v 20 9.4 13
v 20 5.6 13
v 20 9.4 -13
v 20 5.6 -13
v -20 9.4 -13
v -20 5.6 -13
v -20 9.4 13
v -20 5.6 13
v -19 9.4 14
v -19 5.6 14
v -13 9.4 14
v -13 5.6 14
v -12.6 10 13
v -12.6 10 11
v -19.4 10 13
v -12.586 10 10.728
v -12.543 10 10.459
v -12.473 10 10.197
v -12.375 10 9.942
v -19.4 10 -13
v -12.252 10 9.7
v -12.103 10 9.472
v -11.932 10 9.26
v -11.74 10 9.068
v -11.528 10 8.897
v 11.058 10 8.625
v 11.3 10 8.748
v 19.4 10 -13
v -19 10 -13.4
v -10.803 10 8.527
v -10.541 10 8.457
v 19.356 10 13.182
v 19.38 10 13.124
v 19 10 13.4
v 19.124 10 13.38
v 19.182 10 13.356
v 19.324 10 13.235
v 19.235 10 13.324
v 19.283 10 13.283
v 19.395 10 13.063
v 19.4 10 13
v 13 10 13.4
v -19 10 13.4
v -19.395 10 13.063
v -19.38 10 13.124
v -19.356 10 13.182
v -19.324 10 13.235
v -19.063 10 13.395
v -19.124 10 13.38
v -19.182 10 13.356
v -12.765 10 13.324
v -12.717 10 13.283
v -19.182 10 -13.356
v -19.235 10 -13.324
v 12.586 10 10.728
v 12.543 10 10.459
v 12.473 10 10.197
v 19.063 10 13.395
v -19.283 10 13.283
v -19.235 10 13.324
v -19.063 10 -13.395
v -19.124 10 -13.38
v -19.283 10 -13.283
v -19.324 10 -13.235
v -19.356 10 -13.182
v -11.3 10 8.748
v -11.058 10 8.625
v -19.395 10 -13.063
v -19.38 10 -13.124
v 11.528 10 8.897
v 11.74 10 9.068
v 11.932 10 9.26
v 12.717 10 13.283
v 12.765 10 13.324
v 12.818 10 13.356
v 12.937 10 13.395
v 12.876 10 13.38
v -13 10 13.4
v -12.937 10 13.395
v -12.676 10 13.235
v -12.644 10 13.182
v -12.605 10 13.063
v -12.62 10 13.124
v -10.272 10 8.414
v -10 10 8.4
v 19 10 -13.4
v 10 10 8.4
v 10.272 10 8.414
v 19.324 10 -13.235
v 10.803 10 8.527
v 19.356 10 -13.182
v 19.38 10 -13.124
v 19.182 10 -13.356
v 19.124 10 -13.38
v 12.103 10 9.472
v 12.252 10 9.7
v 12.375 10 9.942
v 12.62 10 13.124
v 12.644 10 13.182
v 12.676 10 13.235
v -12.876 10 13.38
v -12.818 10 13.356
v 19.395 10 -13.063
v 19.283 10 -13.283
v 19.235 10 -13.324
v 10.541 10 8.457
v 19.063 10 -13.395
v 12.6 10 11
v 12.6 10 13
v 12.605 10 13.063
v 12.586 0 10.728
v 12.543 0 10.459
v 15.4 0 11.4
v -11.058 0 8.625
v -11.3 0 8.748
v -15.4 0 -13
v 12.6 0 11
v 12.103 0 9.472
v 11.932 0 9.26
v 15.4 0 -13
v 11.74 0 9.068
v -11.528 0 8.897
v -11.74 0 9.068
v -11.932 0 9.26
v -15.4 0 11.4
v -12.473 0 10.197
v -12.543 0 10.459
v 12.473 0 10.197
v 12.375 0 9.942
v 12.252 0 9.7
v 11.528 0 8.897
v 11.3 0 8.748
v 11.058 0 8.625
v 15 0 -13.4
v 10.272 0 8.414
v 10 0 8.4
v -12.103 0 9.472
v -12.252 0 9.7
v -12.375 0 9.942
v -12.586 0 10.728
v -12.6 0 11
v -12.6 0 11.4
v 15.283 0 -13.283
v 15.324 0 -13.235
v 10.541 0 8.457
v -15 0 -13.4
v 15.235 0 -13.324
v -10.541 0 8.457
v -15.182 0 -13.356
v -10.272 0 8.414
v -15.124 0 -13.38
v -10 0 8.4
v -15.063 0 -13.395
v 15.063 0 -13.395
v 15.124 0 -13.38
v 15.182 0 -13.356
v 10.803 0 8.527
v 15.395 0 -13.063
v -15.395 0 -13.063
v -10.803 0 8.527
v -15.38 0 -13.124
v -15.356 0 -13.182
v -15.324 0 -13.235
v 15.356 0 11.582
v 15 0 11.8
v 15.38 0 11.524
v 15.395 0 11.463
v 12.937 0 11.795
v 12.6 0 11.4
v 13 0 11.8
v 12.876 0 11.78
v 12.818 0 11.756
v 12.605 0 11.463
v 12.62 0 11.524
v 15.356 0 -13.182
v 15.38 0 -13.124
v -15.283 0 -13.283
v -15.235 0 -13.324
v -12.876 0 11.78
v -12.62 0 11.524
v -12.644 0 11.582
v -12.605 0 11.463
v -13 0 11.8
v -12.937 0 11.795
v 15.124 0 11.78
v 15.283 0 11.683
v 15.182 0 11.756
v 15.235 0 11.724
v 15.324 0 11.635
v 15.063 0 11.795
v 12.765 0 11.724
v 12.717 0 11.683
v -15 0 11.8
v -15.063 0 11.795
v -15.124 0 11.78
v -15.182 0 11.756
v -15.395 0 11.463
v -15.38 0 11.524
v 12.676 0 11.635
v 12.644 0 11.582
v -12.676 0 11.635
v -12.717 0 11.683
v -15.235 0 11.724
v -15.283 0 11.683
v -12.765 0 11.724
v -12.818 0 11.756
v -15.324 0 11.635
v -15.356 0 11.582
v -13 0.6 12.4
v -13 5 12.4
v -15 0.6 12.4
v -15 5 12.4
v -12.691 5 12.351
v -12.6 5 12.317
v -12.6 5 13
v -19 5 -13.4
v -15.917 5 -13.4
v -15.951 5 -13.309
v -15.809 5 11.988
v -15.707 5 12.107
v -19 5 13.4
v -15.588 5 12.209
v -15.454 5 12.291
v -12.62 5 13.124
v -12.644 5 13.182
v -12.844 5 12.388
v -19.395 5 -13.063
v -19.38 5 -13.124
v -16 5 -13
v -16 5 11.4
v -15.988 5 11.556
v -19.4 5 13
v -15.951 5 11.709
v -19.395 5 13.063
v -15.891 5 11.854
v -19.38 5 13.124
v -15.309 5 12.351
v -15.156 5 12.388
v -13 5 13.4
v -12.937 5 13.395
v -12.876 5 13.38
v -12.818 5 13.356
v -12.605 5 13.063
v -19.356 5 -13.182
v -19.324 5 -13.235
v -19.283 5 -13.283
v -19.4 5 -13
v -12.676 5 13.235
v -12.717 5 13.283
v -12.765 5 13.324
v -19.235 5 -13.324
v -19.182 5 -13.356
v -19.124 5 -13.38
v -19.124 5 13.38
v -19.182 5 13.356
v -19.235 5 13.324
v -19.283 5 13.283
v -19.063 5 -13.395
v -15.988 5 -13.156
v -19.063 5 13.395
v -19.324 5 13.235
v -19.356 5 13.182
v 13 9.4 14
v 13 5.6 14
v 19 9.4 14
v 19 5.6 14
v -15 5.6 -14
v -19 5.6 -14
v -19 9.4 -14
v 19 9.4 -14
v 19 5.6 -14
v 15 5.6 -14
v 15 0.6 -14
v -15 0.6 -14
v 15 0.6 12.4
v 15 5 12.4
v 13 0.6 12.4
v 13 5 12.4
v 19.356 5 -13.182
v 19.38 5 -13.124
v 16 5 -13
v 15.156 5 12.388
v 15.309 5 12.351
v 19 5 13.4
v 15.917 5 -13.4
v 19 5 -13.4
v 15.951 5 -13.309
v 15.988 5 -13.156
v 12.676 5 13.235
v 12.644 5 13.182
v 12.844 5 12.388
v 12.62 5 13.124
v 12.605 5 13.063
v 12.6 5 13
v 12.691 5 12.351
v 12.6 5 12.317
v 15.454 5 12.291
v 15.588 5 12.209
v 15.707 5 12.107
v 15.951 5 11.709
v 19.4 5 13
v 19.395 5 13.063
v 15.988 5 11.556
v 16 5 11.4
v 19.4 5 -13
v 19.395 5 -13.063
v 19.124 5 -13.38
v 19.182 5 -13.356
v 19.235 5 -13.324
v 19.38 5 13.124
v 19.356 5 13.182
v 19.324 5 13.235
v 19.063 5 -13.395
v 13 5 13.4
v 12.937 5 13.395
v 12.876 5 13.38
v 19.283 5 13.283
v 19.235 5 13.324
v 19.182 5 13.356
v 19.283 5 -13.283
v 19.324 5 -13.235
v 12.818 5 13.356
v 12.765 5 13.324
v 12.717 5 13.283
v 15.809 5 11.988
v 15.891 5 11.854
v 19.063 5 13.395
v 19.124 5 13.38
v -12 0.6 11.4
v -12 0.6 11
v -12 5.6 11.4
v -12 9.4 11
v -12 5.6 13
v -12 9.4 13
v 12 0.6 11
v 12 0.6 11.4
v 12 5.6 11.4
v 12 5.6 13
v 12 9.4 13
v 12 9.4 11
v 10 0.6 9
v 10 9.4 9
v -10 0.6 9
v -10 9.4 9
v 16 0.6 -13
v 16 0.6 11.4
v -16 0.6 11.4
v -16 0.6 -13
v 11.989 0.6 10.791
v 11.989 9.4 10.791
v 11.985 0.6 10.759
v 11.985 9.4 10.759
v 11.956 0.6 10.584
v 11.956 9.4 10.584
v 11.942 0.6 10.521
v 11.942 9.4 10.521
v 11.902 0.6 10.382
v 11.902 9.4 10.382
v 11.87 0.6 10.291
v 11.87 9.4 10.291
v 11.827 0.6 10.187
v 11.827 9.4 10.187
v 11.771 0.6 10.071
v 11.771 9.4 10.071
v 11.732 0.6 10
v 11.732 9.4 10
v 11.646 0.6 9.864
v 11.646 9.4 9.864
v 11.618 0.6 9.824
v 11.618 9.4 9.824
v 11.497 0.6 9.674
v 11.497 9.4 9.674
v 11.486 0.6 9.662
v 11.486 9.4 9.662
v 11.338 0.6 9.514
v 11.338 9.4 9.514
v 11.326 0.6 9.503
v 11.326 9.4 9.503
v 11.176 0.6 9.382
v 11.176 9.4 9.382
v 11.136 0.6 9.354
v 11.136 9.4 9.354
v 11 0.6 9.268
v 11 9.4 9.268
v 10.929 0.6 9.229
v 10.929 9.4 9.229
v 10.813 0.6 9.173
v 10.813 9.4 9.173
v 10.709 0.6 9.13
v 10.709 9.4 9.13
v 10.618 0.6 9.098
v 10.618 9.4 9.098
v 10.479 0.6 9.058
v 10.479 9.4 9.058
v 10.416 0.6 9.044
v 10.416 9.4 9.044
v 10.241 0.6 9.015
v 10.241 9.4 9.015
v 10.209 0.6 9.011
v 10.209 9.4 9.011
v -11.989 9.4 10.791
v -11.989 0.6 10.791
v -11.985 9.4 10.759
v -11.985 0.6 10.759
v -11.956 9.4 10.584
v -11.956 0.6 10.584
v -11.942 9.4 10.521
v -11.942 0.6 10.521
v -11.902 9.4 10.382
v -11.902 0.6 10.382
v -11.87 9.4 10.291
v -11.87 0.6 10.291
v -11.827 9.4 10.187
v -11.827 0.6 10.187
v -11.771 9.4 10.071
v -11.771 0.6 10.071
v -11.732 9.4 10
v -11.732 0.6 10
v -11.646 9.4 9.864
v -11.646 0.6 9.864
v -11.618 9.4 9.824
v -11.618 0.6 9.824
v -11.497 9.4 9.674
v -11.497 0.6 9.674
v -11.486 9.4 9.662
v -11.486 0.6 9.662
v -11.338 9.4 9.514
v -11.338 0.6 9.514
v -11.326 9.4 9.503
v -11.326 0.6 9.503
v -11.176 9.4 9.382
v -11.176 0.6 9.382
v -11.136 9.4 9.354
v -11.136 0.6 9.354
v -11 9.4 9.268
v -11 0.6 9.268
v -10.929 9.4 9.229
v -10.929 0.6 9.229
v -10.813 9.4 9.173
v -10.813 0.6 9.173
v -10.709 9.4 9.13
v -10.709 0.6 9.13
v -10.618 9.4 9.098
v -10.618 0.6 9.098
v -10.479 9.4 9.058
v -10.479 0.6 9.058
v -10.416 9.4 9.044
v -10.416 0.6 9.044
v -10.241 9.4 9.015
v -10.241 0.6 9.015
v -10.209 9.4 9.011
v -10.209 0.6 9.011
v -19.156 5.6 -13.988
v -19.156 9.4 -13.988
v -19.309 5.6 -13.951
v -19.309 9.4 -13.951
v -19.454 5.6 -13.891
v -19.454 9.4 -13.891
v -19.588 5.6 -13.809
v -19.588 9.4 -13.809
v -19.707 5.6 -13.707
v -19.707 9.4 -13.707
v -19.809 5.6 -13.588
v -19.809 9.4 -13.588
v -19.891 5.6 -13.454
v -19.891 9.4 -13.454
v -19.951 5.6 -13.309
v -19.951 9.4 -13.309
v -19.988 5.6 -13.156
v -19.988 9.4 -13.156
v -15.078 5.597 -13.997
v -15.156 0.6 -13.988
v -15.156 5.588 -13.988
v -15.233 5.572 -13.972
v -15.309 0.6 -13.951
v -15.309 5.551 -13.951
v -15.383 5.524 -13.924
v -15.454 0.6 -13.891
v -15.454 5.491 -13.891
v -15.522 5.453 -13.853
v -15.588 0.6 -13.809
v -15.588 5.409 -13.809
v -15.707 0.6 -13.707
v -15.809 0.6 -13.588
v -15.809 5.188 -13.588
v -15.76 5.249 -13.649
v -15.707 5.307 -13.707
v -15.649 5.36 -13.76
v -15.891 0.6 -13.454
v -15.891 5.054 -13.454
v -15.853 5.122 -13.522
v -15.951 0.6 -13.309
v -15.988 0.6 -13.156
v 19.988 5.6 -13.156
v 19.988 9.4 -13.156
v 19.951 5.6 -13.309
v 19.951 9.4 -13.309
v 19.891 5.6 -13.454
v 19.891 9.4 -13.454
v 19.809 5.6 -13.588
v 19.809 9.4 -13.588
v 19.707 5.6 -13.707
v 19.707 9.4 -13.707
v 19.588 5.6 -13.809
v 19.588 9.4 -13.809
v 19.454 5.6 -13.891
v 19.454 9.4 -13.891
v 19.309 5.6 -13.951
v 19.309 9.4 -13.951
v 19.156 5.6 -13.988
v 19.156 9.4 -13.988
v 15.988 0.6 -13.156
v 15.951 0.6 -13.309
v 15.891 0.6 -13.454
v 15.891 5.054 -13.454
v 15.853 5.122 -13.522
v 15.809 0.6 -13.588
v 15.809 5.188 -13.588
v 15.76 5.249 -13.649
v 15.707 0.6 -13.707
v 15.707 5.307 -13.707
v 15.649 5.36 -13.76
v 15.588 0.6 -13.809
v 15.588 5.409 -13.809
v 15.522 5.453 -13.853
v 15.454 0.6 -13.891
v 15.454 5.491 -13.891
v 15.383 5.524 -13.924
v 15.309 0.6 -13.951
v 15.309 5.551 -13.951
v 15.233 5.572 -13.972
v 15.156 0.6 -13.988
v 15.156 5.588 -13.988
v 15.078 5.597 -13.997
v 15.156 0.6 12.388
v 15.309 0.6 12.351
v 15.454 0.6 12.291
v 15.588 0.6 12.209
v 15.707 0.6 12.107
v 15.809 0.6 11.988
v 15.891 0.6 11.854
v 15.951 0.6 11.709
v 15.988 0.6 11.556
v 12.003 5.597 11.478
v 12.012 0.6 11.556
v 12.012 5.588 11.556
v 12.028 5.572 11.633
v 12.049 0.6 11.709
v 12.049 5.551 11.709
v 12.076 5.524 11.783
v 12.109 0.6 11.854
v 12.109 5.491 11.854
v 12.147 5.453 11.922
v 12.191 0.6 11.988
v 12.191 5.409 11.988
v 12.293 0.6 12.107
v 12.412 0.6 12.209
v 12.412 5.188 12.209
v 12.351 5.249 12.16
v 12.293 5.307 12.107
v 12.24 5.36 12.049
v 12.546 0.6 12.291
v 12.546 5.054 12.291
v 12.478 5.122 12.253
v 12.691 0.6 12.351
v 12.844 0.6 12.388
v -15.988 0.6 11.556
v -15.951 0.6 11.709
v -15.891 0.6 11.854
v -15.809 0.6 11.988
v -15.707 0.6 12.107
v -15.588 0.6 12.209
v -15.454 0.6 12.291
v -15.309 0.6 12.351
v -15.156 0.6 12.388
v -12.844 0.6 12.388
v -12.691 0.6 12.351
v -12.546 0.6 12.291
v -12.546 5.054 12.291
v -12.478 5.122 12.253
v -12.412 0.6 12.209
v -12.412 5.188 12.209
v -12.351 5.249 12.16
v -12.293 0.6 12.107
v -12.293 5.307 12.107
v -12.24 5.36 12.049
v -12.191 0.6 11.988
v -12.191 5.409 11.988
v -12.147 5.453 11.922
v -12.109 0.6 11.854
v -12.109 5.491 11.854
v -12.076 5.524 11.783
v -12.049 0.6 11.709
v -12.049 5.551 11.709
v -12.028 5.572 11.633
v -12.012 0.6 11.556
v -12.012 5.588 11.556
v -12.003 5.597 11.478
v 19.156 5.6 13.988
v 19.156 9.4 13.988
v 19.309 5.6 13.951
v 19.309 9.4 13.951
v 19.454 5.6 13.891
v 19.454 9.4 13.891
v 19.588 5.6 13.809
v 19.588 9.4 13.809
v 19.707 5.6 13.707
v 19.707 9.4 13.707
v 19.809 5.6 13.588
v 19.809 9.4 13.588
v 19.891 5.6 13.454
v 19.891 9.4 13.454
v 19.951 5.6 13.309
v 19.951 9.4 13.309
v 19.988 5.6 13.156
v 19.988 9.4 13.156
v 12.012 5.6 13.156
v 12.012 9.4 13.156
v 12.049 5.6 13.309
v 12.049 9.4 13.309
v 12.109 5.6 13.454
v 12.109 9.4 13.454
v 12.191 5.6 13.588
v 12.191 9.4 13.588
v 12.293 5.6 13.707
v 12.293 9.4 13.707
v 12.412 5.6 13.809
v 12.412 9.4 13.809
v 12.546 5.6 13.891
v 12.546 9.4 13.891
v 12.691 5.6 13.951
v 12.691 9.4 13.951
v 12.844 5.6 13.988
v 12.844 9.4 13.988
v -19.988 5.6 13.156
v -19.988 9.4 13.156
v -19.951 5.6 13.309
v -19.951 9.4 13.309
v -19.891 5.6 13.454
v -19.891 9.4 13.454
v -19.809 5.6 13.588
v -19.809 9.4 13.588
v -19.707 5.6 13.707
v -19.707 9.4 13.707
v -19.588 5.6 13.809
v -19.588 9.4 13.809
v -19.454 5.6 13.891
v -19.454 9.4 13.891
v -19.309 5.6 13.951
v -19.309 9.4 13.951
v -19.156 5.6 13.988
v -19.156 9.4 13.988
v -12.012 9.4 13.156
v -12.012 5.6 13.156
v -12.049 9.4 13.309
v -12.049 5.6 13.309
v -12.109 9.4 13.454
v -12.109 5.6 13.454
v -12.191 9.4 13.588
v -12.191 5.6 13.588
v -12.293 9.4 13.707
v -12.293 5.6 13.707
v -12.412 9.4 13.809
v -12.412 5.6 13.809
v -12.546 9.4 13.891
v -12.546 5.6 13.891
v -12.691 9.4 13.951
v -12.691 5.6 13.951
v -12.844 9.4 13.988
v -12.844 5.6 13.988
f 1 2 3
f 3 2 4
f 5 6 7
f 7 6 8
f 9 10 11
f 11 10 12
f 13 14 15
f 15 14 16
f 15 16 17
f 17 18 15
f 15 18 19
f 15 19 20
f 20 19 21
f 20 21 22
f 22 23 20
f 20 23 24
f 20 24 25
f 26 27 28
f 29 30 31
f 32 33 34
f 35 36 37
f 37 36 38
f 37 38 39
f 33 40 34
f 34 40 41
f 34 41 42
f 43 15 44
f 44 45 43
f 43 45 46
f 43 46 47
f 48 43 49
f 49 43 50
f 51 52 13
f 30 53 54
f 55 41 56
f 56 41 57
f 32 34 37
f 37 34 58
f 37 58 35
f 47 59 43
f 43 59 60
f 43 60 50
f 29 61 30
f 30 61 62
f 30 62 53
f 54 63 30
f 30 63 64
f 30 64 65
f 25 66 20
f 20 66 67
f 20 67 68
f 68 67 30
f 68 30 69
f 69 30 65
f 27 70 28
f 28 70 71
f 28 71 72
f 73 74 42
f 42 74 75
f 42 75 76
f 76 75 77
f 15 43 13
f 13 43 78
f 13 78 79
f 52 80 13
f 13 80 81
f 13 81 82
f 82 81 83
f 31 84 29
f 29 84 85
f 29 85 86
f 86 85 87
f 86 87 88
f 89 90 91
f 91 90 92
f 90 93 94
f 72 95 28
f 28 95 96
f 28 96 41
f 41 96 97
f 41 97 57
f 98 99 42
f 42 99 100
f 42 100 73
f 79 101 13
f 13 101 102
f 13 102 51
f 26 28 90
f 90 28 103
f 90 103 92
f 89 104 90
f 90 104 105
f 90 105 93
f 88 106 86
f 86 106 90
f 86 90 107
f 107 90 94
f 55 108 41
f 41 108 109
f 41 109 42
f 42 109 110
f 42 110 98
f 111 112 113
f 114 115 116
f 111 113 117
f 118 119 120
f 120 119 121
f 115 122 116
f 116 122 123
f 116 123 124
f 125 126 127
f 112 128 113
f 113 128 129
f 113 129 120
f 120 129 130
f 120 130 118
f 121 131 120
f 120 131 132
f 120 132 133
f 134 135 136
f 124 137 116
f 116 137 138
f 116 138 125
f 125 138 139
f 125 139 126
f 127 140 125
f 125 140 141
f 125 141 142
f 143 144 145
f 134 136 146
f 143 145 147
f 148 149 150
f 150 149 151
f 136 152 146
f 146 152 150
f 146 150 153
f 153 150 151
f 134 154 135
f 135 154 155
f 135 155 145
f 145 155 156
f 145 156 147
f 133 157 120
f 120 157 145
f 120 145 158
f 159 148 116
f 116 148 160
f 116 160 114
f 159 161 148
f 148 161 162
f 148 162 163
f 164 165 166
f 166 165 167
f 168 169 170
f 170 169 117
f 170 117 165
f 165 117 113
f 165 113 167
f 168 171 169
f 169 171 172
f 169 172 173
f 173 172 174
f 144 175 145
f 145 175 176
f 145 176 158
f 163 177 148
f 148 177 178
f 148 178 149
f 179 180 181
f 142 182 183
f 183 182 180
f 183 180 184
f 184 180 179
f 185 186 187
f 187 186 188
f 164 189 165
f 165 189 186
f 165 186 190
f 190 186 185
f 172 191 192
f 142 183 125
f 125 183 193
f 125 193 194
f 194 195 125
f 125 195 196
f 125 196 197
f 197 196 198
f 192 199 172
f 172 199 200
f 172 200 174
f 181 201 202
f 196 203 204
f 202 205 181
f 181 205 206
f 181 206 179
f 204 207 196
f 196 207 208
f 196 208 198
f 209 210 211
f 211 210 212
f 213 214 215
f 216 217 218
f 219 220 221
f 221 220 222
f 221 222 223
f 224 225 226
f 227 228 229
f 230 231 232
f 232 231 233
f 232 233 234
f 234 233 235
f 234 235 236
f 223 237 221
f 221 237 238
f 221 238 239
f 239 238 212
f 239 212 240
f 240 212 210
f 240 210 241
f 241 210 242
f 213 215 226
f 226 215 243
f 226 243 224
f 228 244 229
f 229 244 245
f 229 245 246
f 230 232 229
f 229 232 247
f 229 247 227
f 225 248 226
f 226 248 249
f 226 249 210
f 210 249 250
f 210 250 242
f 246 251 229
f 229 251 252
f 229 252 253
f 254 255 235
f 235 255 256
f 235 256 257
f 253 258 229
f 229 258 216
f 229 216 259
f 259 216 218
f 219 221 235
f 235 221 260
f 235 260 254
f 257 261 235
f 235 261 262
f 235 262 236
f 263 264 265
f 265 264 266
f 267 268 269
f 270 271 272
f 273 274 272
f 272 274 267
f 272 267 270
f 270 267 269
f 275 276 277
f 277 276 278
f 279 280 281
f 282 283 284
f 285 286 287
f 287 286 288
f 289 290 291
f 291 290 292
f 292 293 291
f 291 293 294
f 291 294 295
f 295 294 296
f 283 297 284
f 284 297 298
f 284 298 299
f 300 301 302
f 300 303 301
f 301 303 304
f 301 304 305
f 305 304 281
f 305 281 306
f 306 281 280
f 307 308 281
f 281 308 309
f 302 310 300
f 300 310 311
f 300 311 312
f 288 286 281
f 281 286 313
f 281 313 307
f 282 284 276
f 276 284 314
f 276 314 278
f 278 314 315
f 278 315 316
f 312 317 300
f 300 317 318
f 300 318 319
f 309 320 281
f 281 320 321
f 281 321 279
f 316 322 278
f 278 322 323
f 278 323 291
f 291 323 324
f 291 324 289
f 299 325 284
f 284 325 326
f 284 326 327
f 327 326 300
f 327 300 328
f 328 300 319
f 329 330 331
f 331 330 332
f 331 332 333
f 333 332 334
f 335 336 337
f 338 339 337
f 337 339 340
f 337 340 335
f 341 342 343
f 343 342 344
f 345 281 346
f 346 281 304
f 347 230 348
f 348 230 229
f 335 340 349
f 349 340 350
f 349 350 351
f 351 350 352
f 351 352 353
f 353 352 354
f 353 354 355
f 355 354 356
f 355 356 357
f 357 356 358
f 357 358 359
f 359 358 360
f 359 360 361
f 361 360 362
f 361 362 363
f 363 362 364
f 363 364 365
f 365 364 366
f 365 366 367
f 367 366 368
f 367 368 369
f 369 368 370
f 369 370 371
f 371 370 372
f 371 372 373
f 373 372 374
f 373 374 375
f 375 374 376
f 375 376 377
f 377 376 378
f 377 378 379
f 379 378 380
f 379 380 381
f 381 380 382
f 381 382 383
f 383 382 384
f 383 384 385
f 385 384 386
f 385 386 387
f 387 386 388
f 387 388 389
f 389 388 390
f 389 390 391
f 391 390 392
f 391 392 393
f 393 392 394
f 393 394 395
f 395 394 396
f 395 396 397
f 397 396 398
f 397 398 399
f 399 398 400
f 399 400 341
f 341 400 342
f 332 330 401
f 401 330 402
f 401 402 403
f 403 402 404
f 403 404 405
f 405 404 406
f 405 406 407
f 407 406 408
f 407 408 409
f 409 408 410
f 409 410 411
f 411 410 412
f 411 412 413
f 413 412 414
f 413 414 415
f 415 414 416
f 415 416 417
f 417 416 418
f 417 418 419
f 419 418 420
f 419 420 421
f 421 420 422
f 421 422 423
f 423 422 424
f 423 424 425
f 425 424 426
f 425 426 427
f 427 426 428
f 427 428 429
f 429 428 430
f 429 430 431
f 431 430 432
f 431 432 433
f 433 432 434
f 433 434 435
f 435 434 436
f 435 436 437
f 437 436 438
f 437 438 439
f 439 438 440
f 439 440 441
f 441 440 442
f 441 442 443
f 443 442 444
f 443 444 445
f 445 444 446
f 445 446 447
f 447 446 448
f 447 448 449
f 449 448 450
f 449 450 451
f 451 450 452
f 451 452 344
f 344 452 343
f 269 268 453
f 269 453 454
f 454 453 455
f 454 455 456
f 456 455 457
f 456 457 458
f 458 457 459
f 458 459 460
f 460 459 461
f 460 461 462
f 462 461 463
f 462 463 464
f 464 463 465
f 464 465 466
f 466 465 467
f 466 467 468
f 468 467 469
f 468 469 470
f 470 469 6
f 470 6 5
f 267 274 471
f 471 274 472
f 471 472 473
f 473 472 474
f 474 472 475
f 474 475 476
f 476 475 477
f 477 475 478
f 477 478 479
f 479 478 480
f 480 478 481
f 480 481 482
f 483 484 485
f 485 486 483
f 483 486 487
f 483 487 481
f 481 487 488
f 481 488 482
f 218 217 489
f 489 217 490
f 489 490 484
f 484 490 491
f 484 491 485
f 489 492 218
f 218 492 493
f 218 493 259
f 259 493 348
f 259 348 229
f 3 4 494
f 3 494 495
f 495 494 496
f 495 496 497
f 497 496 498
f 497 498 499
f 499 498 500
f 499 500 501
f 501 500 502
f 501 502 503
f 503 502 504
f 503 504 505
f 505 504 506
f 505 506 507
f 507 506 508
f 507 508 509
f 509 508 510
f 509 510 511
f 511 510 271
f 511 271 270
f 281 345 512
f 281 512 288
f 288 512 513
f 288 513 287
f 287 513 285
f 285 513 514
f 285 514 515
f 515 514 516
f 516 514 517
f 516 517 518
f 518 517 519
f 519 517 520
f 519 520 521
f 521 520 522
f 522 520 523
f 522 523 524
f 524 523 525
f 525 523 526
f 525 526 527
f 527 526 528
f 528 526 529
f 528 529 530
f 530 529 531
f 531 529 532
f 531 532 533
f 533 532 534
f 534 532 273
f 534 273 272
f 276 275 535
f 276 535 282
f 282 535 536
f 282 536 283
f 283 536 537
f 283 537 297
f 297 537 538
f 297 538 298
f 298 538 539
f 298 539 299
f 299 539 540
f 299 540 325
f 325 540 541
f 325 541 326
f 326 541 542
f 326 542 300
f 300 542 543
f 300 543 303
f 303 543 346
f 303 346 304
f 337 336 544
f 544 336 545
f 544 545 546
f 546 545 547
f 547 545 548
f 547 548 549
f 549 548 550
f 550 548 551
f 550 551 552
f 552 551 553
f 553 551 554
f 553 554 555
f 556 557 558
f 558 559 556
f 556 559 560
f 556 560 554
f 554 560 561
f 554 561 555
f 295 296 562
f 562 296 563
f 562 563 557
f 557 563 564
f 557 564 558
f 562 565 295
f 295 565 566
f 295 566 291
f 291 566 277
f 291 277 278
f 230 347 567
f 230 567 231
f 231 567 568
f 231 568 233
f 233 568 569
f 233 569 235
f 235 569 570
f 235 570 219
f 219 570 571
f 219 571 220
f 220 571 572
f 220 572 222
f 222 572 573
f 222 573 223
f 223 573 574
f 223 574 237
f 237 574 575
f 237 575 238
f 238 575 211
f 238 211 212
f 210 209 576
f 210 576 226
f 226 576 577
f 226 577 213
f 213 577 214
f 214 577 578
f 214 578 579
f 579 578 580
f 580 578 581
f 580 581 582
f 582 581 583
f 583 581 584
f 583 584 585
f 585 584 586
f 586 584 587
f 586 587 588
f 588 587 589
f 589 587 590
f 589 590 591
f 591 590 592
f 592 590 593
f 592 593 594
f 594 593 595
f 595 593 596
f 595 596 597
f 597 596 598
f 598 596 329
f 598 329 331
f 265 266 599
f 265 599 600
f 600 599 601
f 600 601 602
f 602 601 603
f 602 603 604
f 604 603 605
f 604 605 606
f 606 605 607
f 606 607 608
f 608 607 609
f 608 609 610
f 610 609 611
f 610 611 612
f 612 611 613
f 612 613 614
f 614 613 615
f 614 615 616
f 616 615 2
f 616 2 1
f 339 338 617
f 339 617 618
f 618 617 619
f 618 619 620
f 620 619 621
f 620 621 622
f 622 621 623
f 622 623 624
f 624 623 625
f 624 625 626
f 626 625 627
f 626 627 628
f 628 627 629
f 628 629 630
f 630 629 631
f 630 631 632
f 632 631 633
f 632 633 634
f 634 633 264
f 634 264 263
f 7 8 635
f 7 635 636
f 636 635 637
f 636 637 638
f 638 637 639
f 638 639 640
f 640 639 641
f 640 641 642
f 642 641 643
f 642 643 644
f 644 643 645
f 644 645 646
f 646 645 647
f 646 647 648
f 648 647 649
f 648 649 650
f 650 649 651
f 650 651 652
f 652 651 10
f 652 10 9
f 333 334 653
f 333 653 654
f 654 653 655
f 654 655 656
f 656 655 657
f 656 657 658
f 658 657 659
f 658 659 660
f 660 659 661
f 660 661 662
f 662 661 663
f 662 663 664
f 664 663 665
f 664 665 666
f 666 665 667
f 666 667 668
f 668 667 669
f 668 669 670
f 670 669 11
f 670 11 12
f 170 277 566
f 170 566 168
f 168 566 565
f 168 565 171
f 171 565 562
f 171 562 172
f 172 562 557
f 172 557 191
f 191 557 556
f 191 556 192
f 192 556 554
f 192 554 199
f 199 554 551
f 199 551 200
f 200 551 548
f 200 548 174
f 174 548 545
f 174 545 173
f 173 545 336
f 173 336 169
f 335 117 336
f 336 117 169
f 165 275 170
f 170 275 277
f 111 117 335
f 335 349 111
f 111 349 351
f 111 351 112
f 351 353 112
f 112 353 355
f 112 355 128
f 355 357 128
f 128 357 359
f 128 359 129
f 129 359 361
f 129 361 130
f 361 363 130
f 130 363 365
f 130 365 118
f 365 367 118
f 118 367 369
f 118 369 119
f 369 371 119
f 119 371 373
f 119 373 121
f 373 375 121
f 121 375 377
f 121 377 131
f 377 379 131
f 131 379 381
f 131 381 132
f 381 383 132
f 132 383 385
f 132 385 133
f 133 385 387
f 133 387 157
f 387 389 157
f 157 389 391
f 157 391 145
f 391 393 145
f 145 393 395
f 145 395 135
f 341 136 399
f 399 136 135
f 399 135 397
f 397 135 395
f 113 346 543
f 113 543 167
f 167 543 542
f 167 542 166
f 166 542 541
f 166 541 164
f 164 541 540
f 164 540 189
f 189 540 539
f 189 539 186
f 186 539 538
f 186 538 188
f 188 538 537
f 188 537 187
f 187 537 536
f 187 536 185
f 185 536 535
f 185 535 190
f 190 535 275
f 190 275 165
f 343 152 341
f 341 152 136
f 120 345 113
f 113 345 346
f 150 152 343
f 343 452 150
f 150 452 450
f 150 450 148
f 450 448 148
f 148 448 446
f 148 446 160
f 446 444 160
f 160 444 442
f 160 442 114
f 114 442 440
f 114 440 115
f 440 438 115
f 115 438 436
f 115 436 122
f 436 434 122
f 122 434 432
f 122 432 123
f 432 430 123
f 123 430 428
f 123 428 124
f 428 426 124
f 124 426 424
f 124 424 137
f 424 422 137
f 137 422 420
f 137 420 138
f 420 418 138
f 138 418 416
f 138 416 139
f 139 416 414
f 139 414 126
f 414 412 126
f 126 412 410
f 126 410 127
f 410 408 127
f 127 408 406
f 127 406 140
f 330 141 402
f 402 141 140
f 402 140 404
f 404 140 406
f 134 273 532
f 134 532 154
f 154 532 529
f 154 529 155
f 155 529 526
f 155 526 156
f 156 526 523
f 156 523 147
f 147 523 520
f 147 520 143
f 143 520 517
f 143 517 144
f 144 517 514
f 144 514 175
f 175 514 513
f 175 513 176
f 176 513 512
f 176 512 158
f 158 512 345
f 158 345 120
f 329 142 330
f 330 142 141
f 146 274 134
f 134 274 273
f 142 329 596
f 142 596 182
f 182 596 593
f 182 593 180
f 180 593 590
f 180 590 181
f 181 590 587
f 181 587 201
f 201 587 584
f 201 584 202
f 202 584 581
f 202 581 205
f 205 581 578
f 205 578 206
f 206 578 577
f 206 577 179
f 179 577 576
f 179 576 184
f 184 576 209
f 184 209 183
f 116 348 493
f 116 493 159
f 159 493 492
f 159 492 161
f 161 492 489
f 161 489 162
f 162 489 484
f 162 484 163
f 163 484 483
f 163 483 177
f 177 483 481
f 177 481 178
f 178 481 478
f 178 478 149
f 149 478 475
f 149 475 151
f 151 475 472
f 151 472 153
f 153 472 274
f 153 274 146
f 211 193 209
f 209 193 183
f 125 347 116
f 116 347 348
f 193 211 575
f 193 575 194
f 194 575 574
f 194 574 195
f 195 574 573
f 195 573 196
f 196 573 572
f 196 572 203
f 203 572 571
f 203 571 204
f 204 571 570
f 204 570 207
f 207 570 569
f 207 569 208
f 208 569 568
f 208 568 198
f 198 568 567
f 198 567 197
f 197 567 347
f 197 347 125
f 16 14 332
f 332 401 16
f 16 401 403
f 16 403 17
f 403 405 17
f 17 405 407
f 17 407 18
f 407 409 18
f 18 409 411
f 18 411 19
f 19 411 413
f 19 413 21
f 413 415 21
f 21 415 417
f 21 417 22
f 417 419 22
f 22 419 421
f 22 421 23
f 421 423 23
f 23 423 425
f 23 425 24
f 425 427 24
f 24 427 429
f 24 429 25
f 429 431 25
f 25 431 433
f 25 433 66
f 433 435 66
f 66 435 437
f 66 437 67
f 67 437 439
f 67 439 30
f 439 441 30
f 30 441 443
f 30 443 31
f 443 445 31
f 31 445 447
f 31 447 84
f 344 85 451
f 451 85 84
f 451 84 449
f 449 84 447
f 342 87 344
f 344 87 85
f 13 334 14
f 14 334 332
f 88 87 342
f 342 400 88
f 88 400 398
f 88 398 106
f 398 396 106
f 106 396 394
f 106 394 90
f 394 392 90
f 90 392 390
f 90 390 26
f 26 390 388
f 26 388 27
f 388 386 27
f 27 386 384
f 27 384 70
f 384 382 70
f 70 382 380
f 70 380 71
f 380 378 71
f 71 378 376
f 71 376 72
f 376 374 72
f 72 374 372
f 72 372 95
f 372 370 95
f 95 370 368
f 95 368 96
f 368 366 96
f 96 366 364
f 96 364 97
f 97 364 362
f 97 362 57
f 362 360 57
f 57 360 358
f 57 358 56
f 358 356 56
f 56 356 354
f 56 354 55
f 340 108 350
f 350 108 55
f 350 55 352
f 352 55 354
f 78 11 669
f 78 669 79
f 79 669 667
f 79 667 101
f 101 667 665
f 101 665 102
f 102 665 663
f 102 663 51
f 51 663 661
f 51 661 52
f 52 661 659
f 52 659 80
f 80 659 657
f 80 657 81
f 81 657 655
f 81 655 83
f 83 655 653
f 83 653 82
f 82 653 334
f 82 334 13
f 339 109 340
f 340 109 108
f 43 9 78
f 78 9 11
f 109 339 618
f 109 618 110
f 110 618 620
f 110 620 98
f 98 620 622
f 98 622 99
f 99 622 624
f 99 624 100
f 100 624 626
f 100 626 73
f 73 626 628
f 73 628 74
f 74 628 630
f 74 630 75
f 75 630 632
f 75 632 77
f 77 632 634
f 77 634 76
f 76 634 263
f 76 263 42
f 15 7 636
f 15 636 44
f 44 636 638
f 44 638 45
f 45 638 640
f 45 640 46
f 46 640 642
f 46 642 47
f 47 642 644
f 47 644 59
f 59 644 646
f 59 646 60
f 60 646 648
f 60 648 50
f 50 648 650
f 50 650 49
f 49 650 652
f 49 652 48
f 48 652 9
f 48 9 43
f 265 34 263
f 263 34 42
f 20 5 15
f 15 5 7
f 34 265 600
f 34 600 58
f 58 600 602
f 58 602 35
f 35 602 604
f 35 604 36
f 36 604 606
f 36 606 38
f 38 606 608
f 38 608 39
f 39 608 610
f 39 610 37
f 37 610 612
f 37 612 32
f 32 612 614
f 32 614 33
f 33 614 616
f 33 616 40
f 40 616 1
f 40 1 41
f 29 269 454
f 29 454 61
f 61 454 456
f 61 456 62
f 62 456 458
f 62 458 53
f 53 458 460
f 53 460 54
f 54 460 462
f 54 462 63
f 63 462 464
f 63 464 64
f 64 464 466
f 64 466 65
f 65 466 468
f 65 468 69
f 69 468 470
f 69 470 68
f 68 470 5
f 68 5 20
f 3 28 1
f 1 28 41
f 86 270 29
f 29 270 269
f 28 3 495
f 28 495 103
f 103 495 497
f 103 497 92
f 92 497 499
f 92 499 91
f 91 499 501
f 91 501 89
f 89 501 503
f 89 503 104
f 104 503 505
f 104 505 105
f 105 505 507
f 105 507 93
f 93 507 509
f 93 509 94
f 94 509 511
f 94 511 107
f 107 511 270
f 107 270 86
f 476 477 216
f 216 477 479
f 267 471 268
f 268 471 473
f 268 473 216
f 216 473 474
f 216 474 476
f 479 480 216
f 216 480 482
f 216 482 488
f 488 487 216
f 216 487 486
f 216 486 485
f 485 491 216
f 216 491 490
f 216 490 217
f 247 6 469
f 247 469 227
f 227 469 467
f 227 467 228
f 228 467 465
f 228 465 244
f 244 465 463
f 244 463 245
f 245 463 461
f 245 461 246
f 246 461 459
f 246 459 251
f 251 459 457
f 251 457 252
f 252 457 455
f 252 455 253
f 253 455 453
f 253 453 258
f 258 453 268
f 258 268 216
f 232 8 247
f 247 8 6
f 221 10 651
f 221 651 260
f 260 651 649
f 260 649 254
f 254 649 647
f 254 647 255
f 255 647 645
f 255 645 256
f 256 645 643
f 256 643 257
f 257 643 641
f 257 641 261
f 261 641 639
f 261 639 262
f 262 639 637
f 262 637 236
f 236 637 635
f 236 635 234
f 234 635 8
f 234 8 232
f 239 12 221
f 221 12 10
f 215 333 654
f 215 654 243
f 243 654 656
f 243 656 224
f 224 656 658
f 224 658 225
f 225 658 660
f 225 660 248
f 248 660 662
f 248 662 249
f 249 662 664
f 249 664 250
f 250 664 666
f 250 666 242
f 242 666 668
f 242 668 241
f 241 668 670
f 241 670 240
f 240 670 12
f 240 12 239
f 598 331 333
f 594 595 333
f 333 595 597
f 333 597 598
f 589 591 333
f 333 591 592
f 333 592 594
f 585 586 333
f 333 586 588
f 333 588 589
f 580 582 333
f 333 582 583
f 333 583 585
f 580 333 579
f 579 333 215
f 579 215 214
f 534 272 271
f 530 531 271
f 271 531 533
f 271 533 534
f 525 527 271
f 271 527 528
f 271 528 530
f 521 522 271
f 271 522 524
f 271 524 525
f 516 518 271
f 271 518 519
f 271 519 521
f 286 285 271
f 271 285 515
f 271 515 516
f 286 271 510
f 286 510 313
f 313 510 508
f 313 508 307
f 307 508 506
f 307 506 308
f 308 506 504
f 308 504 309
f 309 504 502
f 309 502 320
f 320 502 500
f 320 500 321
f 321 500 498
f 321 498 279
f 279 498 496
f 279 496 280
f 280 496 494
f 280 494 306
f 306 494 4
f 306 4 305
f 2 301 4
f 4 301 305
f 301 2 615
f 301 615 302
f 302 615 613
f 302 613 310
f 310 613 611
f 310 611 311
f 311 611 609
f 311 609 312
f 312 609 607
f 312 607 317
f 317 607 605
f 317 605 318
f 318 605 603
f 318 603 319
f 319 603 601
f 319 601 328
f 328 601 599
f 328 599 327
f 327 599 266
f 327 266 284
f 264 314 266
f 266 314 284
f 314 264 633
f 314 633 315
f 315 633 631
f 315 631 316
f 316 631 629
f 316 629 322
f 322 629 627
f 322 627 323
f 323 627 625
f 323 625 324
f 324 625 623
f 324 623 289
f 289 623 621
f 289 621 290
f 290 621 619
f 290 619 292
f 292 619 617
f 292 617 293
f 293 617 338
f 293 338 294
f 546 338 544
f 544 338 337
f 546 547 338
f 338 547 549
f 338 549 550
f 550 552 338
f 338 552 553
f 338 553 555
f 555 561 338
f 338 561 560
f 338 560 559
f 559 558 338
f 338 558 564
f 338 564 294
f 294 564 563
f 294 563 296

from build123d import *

# Parameters (mm, degrees)
SKETCH1_W           = 40
SKETCH1_H           = 28
BOSS_EXTRUDE1_DEPTH = 10
SKETCH2_W           = 40
SKETCH2_H           = 1.6
CUT_EXTRUDE1_DEPTH  = 5
SKETCH3_W           = 24
SKETCH3_H           = 10
CUT_EXTRUDE2_DEPTH  = 27.381811917
SKETCH4_W           = 4
SKETCH4_H           = 26.4
CUT_EXTRUDE3_DEPTH  = 5
FILLET1_R           = 2
FILLET2_R           = 1
CHAMFER2_SIZE       = 0.6


with BuildPart() as part:
    # Sketch1 → Boss-Extrude1 (new body)
    with BuildSketch(Plane(origin=(0, 0, 0), x_dir=(1, 0, 0), z_dir=(0, 1, 0))):
        Rectangle(SKETCH1_W, SKETCH1_H)
    extrude(amount=BOSS_EXTRUDE1_DEPTH)

    # Sketch2 → Cut-Extrude1 (cut)
    with BuildSketch(Plane.XZ):
        with Locations((0, 13.2)):
            Rectangle(SKETCH2_W, SKETCH2_H)
    extrude(amount=-CUT_EXTRUDE1_DEPTH, mode=Mode.SUBTRACT)

    # Sketch3 → Cut-Extrude2 (cut, through all)
    with BuildSketch(Plane(origin=(0, 10, 0), x_dir=(1, 0, 0), z_dir=(0, 1, 0))):
        with Locations((0, -14)):
            Rectangle(SKETCH3_W, SKETCH3_H)
    extrude(amount=-CUT_EXTRUDE2_DEPTH, mode=Mode.SUBTRACT)

    # Sketch4 → Cut-Extrude3 (cut)
    with BuildSketch(Plane.XZ):
        with Locations((-18, -0.8)):
            Rectangle(SKETCH4_W, SKETCH4_H)
        with Locations((18, -0.8)):
            Rectangle(SKETCH4_W, SKETCH4_H)
    extrude(amount=-CUT_EXTRUDE3_DEPTH, mode=Mode.SUBTRACT)

    # Fillet1
    fillet1_edges = [part.edges().sort_by_distance(p)[0] for p in [
        (12, 5, 9),
        (-12, 5, 9),
    ]]
    fillet(fillet1_edges, radius=FILLET1_R)

    # Fillet2
    fillet2_edges = [part.edges().sort_by_distance(p)[0] for p in [
        (12, 7.5, 14),
        (12, 2.5, 12.4),
        (-12, 7.5, 14),
        (-12, 2.5, 12.4),
        (-16, 2.5, 12.4),
        (-16, 2.5, -14),
        (16, 2.5, -14),
        (16, 2.5, 12.4),
        (20, 7.5, 14),
        (-20, 7.5, 14),
        (-20, 7.5, -14),
        (20, 7.5, -14),
    ]]
    fillet(fillet2_edges, radius=FILLET2_R)

    # Chamfer2
    chamfer2_edges = [part.edges().sort_by_distance(p)[0] for p in [
        (0, 0, -14),
        (0, 10, -14),
        (17, 5, -14),
        (-12, 10, 12),
        (12, 10, 12),
        (16, 10, 14),
        (20, 10, 0),
        (-16, 10, 14),
        (-12.292893219, 10, 13.707106781),
        (-19.707106781, 10, 13.707106781),
        (12.292893219, 10, 13.707106781),
        (19.707106781, 10, 13.707106781),
        (19.707106781, 10, -13.707106781),
        (-19.707106781, 10, -13.707106781),
        (-16, 0, -0.8),
        (16, 0, -0.8),
        (14, 0, 12.4),
        (12, 0, 11.2),
        (-12, 0, 11.2),
        (-14, 0, 12.4),
        (-12.292893219, 0, 12.107106781),
        (-15.707106781, 0, 12.107106781),
        (12.292893219, 0, 12.107106781),
        (15.707106781, 0, 12.107106781),
        (15.707106781, 0, -13.707106781),
        (-15.707106781, 0, -13.707106781),
        (20, 5, 0),
        (16, 5, 14),
        (12.292893219, 5, 13.707106781),
        (19.707106781, 5, 13.707106781),
        (19.707106781, 5, -13.707106781),
        (12, 5, 12.2),
        (-12, 5, 12.2),
        (-17, 5, -14),
        (0, 10, 9),
        (0, 0, 9),
        (11.414213562, 10, 9.585786438),
        (11.414213562, 0, 9.585786438),
        (-11.414213562, 10, 9.585786438),
        (-11.414213562, 0, 9.585786438),
        (-20, 5, 0),
        (-20, 10, 0),
        (-16, 5, 14),
        (-12.292893219, 5, 13.707106781),
        (-19.707106781, 5, 13.707106781),
        (-19.707106781, 5, -13.707106781),
    ]]
    chamfer(chamfer2_edges, length=CHAMFER2_SIZE)


solid = part.part
